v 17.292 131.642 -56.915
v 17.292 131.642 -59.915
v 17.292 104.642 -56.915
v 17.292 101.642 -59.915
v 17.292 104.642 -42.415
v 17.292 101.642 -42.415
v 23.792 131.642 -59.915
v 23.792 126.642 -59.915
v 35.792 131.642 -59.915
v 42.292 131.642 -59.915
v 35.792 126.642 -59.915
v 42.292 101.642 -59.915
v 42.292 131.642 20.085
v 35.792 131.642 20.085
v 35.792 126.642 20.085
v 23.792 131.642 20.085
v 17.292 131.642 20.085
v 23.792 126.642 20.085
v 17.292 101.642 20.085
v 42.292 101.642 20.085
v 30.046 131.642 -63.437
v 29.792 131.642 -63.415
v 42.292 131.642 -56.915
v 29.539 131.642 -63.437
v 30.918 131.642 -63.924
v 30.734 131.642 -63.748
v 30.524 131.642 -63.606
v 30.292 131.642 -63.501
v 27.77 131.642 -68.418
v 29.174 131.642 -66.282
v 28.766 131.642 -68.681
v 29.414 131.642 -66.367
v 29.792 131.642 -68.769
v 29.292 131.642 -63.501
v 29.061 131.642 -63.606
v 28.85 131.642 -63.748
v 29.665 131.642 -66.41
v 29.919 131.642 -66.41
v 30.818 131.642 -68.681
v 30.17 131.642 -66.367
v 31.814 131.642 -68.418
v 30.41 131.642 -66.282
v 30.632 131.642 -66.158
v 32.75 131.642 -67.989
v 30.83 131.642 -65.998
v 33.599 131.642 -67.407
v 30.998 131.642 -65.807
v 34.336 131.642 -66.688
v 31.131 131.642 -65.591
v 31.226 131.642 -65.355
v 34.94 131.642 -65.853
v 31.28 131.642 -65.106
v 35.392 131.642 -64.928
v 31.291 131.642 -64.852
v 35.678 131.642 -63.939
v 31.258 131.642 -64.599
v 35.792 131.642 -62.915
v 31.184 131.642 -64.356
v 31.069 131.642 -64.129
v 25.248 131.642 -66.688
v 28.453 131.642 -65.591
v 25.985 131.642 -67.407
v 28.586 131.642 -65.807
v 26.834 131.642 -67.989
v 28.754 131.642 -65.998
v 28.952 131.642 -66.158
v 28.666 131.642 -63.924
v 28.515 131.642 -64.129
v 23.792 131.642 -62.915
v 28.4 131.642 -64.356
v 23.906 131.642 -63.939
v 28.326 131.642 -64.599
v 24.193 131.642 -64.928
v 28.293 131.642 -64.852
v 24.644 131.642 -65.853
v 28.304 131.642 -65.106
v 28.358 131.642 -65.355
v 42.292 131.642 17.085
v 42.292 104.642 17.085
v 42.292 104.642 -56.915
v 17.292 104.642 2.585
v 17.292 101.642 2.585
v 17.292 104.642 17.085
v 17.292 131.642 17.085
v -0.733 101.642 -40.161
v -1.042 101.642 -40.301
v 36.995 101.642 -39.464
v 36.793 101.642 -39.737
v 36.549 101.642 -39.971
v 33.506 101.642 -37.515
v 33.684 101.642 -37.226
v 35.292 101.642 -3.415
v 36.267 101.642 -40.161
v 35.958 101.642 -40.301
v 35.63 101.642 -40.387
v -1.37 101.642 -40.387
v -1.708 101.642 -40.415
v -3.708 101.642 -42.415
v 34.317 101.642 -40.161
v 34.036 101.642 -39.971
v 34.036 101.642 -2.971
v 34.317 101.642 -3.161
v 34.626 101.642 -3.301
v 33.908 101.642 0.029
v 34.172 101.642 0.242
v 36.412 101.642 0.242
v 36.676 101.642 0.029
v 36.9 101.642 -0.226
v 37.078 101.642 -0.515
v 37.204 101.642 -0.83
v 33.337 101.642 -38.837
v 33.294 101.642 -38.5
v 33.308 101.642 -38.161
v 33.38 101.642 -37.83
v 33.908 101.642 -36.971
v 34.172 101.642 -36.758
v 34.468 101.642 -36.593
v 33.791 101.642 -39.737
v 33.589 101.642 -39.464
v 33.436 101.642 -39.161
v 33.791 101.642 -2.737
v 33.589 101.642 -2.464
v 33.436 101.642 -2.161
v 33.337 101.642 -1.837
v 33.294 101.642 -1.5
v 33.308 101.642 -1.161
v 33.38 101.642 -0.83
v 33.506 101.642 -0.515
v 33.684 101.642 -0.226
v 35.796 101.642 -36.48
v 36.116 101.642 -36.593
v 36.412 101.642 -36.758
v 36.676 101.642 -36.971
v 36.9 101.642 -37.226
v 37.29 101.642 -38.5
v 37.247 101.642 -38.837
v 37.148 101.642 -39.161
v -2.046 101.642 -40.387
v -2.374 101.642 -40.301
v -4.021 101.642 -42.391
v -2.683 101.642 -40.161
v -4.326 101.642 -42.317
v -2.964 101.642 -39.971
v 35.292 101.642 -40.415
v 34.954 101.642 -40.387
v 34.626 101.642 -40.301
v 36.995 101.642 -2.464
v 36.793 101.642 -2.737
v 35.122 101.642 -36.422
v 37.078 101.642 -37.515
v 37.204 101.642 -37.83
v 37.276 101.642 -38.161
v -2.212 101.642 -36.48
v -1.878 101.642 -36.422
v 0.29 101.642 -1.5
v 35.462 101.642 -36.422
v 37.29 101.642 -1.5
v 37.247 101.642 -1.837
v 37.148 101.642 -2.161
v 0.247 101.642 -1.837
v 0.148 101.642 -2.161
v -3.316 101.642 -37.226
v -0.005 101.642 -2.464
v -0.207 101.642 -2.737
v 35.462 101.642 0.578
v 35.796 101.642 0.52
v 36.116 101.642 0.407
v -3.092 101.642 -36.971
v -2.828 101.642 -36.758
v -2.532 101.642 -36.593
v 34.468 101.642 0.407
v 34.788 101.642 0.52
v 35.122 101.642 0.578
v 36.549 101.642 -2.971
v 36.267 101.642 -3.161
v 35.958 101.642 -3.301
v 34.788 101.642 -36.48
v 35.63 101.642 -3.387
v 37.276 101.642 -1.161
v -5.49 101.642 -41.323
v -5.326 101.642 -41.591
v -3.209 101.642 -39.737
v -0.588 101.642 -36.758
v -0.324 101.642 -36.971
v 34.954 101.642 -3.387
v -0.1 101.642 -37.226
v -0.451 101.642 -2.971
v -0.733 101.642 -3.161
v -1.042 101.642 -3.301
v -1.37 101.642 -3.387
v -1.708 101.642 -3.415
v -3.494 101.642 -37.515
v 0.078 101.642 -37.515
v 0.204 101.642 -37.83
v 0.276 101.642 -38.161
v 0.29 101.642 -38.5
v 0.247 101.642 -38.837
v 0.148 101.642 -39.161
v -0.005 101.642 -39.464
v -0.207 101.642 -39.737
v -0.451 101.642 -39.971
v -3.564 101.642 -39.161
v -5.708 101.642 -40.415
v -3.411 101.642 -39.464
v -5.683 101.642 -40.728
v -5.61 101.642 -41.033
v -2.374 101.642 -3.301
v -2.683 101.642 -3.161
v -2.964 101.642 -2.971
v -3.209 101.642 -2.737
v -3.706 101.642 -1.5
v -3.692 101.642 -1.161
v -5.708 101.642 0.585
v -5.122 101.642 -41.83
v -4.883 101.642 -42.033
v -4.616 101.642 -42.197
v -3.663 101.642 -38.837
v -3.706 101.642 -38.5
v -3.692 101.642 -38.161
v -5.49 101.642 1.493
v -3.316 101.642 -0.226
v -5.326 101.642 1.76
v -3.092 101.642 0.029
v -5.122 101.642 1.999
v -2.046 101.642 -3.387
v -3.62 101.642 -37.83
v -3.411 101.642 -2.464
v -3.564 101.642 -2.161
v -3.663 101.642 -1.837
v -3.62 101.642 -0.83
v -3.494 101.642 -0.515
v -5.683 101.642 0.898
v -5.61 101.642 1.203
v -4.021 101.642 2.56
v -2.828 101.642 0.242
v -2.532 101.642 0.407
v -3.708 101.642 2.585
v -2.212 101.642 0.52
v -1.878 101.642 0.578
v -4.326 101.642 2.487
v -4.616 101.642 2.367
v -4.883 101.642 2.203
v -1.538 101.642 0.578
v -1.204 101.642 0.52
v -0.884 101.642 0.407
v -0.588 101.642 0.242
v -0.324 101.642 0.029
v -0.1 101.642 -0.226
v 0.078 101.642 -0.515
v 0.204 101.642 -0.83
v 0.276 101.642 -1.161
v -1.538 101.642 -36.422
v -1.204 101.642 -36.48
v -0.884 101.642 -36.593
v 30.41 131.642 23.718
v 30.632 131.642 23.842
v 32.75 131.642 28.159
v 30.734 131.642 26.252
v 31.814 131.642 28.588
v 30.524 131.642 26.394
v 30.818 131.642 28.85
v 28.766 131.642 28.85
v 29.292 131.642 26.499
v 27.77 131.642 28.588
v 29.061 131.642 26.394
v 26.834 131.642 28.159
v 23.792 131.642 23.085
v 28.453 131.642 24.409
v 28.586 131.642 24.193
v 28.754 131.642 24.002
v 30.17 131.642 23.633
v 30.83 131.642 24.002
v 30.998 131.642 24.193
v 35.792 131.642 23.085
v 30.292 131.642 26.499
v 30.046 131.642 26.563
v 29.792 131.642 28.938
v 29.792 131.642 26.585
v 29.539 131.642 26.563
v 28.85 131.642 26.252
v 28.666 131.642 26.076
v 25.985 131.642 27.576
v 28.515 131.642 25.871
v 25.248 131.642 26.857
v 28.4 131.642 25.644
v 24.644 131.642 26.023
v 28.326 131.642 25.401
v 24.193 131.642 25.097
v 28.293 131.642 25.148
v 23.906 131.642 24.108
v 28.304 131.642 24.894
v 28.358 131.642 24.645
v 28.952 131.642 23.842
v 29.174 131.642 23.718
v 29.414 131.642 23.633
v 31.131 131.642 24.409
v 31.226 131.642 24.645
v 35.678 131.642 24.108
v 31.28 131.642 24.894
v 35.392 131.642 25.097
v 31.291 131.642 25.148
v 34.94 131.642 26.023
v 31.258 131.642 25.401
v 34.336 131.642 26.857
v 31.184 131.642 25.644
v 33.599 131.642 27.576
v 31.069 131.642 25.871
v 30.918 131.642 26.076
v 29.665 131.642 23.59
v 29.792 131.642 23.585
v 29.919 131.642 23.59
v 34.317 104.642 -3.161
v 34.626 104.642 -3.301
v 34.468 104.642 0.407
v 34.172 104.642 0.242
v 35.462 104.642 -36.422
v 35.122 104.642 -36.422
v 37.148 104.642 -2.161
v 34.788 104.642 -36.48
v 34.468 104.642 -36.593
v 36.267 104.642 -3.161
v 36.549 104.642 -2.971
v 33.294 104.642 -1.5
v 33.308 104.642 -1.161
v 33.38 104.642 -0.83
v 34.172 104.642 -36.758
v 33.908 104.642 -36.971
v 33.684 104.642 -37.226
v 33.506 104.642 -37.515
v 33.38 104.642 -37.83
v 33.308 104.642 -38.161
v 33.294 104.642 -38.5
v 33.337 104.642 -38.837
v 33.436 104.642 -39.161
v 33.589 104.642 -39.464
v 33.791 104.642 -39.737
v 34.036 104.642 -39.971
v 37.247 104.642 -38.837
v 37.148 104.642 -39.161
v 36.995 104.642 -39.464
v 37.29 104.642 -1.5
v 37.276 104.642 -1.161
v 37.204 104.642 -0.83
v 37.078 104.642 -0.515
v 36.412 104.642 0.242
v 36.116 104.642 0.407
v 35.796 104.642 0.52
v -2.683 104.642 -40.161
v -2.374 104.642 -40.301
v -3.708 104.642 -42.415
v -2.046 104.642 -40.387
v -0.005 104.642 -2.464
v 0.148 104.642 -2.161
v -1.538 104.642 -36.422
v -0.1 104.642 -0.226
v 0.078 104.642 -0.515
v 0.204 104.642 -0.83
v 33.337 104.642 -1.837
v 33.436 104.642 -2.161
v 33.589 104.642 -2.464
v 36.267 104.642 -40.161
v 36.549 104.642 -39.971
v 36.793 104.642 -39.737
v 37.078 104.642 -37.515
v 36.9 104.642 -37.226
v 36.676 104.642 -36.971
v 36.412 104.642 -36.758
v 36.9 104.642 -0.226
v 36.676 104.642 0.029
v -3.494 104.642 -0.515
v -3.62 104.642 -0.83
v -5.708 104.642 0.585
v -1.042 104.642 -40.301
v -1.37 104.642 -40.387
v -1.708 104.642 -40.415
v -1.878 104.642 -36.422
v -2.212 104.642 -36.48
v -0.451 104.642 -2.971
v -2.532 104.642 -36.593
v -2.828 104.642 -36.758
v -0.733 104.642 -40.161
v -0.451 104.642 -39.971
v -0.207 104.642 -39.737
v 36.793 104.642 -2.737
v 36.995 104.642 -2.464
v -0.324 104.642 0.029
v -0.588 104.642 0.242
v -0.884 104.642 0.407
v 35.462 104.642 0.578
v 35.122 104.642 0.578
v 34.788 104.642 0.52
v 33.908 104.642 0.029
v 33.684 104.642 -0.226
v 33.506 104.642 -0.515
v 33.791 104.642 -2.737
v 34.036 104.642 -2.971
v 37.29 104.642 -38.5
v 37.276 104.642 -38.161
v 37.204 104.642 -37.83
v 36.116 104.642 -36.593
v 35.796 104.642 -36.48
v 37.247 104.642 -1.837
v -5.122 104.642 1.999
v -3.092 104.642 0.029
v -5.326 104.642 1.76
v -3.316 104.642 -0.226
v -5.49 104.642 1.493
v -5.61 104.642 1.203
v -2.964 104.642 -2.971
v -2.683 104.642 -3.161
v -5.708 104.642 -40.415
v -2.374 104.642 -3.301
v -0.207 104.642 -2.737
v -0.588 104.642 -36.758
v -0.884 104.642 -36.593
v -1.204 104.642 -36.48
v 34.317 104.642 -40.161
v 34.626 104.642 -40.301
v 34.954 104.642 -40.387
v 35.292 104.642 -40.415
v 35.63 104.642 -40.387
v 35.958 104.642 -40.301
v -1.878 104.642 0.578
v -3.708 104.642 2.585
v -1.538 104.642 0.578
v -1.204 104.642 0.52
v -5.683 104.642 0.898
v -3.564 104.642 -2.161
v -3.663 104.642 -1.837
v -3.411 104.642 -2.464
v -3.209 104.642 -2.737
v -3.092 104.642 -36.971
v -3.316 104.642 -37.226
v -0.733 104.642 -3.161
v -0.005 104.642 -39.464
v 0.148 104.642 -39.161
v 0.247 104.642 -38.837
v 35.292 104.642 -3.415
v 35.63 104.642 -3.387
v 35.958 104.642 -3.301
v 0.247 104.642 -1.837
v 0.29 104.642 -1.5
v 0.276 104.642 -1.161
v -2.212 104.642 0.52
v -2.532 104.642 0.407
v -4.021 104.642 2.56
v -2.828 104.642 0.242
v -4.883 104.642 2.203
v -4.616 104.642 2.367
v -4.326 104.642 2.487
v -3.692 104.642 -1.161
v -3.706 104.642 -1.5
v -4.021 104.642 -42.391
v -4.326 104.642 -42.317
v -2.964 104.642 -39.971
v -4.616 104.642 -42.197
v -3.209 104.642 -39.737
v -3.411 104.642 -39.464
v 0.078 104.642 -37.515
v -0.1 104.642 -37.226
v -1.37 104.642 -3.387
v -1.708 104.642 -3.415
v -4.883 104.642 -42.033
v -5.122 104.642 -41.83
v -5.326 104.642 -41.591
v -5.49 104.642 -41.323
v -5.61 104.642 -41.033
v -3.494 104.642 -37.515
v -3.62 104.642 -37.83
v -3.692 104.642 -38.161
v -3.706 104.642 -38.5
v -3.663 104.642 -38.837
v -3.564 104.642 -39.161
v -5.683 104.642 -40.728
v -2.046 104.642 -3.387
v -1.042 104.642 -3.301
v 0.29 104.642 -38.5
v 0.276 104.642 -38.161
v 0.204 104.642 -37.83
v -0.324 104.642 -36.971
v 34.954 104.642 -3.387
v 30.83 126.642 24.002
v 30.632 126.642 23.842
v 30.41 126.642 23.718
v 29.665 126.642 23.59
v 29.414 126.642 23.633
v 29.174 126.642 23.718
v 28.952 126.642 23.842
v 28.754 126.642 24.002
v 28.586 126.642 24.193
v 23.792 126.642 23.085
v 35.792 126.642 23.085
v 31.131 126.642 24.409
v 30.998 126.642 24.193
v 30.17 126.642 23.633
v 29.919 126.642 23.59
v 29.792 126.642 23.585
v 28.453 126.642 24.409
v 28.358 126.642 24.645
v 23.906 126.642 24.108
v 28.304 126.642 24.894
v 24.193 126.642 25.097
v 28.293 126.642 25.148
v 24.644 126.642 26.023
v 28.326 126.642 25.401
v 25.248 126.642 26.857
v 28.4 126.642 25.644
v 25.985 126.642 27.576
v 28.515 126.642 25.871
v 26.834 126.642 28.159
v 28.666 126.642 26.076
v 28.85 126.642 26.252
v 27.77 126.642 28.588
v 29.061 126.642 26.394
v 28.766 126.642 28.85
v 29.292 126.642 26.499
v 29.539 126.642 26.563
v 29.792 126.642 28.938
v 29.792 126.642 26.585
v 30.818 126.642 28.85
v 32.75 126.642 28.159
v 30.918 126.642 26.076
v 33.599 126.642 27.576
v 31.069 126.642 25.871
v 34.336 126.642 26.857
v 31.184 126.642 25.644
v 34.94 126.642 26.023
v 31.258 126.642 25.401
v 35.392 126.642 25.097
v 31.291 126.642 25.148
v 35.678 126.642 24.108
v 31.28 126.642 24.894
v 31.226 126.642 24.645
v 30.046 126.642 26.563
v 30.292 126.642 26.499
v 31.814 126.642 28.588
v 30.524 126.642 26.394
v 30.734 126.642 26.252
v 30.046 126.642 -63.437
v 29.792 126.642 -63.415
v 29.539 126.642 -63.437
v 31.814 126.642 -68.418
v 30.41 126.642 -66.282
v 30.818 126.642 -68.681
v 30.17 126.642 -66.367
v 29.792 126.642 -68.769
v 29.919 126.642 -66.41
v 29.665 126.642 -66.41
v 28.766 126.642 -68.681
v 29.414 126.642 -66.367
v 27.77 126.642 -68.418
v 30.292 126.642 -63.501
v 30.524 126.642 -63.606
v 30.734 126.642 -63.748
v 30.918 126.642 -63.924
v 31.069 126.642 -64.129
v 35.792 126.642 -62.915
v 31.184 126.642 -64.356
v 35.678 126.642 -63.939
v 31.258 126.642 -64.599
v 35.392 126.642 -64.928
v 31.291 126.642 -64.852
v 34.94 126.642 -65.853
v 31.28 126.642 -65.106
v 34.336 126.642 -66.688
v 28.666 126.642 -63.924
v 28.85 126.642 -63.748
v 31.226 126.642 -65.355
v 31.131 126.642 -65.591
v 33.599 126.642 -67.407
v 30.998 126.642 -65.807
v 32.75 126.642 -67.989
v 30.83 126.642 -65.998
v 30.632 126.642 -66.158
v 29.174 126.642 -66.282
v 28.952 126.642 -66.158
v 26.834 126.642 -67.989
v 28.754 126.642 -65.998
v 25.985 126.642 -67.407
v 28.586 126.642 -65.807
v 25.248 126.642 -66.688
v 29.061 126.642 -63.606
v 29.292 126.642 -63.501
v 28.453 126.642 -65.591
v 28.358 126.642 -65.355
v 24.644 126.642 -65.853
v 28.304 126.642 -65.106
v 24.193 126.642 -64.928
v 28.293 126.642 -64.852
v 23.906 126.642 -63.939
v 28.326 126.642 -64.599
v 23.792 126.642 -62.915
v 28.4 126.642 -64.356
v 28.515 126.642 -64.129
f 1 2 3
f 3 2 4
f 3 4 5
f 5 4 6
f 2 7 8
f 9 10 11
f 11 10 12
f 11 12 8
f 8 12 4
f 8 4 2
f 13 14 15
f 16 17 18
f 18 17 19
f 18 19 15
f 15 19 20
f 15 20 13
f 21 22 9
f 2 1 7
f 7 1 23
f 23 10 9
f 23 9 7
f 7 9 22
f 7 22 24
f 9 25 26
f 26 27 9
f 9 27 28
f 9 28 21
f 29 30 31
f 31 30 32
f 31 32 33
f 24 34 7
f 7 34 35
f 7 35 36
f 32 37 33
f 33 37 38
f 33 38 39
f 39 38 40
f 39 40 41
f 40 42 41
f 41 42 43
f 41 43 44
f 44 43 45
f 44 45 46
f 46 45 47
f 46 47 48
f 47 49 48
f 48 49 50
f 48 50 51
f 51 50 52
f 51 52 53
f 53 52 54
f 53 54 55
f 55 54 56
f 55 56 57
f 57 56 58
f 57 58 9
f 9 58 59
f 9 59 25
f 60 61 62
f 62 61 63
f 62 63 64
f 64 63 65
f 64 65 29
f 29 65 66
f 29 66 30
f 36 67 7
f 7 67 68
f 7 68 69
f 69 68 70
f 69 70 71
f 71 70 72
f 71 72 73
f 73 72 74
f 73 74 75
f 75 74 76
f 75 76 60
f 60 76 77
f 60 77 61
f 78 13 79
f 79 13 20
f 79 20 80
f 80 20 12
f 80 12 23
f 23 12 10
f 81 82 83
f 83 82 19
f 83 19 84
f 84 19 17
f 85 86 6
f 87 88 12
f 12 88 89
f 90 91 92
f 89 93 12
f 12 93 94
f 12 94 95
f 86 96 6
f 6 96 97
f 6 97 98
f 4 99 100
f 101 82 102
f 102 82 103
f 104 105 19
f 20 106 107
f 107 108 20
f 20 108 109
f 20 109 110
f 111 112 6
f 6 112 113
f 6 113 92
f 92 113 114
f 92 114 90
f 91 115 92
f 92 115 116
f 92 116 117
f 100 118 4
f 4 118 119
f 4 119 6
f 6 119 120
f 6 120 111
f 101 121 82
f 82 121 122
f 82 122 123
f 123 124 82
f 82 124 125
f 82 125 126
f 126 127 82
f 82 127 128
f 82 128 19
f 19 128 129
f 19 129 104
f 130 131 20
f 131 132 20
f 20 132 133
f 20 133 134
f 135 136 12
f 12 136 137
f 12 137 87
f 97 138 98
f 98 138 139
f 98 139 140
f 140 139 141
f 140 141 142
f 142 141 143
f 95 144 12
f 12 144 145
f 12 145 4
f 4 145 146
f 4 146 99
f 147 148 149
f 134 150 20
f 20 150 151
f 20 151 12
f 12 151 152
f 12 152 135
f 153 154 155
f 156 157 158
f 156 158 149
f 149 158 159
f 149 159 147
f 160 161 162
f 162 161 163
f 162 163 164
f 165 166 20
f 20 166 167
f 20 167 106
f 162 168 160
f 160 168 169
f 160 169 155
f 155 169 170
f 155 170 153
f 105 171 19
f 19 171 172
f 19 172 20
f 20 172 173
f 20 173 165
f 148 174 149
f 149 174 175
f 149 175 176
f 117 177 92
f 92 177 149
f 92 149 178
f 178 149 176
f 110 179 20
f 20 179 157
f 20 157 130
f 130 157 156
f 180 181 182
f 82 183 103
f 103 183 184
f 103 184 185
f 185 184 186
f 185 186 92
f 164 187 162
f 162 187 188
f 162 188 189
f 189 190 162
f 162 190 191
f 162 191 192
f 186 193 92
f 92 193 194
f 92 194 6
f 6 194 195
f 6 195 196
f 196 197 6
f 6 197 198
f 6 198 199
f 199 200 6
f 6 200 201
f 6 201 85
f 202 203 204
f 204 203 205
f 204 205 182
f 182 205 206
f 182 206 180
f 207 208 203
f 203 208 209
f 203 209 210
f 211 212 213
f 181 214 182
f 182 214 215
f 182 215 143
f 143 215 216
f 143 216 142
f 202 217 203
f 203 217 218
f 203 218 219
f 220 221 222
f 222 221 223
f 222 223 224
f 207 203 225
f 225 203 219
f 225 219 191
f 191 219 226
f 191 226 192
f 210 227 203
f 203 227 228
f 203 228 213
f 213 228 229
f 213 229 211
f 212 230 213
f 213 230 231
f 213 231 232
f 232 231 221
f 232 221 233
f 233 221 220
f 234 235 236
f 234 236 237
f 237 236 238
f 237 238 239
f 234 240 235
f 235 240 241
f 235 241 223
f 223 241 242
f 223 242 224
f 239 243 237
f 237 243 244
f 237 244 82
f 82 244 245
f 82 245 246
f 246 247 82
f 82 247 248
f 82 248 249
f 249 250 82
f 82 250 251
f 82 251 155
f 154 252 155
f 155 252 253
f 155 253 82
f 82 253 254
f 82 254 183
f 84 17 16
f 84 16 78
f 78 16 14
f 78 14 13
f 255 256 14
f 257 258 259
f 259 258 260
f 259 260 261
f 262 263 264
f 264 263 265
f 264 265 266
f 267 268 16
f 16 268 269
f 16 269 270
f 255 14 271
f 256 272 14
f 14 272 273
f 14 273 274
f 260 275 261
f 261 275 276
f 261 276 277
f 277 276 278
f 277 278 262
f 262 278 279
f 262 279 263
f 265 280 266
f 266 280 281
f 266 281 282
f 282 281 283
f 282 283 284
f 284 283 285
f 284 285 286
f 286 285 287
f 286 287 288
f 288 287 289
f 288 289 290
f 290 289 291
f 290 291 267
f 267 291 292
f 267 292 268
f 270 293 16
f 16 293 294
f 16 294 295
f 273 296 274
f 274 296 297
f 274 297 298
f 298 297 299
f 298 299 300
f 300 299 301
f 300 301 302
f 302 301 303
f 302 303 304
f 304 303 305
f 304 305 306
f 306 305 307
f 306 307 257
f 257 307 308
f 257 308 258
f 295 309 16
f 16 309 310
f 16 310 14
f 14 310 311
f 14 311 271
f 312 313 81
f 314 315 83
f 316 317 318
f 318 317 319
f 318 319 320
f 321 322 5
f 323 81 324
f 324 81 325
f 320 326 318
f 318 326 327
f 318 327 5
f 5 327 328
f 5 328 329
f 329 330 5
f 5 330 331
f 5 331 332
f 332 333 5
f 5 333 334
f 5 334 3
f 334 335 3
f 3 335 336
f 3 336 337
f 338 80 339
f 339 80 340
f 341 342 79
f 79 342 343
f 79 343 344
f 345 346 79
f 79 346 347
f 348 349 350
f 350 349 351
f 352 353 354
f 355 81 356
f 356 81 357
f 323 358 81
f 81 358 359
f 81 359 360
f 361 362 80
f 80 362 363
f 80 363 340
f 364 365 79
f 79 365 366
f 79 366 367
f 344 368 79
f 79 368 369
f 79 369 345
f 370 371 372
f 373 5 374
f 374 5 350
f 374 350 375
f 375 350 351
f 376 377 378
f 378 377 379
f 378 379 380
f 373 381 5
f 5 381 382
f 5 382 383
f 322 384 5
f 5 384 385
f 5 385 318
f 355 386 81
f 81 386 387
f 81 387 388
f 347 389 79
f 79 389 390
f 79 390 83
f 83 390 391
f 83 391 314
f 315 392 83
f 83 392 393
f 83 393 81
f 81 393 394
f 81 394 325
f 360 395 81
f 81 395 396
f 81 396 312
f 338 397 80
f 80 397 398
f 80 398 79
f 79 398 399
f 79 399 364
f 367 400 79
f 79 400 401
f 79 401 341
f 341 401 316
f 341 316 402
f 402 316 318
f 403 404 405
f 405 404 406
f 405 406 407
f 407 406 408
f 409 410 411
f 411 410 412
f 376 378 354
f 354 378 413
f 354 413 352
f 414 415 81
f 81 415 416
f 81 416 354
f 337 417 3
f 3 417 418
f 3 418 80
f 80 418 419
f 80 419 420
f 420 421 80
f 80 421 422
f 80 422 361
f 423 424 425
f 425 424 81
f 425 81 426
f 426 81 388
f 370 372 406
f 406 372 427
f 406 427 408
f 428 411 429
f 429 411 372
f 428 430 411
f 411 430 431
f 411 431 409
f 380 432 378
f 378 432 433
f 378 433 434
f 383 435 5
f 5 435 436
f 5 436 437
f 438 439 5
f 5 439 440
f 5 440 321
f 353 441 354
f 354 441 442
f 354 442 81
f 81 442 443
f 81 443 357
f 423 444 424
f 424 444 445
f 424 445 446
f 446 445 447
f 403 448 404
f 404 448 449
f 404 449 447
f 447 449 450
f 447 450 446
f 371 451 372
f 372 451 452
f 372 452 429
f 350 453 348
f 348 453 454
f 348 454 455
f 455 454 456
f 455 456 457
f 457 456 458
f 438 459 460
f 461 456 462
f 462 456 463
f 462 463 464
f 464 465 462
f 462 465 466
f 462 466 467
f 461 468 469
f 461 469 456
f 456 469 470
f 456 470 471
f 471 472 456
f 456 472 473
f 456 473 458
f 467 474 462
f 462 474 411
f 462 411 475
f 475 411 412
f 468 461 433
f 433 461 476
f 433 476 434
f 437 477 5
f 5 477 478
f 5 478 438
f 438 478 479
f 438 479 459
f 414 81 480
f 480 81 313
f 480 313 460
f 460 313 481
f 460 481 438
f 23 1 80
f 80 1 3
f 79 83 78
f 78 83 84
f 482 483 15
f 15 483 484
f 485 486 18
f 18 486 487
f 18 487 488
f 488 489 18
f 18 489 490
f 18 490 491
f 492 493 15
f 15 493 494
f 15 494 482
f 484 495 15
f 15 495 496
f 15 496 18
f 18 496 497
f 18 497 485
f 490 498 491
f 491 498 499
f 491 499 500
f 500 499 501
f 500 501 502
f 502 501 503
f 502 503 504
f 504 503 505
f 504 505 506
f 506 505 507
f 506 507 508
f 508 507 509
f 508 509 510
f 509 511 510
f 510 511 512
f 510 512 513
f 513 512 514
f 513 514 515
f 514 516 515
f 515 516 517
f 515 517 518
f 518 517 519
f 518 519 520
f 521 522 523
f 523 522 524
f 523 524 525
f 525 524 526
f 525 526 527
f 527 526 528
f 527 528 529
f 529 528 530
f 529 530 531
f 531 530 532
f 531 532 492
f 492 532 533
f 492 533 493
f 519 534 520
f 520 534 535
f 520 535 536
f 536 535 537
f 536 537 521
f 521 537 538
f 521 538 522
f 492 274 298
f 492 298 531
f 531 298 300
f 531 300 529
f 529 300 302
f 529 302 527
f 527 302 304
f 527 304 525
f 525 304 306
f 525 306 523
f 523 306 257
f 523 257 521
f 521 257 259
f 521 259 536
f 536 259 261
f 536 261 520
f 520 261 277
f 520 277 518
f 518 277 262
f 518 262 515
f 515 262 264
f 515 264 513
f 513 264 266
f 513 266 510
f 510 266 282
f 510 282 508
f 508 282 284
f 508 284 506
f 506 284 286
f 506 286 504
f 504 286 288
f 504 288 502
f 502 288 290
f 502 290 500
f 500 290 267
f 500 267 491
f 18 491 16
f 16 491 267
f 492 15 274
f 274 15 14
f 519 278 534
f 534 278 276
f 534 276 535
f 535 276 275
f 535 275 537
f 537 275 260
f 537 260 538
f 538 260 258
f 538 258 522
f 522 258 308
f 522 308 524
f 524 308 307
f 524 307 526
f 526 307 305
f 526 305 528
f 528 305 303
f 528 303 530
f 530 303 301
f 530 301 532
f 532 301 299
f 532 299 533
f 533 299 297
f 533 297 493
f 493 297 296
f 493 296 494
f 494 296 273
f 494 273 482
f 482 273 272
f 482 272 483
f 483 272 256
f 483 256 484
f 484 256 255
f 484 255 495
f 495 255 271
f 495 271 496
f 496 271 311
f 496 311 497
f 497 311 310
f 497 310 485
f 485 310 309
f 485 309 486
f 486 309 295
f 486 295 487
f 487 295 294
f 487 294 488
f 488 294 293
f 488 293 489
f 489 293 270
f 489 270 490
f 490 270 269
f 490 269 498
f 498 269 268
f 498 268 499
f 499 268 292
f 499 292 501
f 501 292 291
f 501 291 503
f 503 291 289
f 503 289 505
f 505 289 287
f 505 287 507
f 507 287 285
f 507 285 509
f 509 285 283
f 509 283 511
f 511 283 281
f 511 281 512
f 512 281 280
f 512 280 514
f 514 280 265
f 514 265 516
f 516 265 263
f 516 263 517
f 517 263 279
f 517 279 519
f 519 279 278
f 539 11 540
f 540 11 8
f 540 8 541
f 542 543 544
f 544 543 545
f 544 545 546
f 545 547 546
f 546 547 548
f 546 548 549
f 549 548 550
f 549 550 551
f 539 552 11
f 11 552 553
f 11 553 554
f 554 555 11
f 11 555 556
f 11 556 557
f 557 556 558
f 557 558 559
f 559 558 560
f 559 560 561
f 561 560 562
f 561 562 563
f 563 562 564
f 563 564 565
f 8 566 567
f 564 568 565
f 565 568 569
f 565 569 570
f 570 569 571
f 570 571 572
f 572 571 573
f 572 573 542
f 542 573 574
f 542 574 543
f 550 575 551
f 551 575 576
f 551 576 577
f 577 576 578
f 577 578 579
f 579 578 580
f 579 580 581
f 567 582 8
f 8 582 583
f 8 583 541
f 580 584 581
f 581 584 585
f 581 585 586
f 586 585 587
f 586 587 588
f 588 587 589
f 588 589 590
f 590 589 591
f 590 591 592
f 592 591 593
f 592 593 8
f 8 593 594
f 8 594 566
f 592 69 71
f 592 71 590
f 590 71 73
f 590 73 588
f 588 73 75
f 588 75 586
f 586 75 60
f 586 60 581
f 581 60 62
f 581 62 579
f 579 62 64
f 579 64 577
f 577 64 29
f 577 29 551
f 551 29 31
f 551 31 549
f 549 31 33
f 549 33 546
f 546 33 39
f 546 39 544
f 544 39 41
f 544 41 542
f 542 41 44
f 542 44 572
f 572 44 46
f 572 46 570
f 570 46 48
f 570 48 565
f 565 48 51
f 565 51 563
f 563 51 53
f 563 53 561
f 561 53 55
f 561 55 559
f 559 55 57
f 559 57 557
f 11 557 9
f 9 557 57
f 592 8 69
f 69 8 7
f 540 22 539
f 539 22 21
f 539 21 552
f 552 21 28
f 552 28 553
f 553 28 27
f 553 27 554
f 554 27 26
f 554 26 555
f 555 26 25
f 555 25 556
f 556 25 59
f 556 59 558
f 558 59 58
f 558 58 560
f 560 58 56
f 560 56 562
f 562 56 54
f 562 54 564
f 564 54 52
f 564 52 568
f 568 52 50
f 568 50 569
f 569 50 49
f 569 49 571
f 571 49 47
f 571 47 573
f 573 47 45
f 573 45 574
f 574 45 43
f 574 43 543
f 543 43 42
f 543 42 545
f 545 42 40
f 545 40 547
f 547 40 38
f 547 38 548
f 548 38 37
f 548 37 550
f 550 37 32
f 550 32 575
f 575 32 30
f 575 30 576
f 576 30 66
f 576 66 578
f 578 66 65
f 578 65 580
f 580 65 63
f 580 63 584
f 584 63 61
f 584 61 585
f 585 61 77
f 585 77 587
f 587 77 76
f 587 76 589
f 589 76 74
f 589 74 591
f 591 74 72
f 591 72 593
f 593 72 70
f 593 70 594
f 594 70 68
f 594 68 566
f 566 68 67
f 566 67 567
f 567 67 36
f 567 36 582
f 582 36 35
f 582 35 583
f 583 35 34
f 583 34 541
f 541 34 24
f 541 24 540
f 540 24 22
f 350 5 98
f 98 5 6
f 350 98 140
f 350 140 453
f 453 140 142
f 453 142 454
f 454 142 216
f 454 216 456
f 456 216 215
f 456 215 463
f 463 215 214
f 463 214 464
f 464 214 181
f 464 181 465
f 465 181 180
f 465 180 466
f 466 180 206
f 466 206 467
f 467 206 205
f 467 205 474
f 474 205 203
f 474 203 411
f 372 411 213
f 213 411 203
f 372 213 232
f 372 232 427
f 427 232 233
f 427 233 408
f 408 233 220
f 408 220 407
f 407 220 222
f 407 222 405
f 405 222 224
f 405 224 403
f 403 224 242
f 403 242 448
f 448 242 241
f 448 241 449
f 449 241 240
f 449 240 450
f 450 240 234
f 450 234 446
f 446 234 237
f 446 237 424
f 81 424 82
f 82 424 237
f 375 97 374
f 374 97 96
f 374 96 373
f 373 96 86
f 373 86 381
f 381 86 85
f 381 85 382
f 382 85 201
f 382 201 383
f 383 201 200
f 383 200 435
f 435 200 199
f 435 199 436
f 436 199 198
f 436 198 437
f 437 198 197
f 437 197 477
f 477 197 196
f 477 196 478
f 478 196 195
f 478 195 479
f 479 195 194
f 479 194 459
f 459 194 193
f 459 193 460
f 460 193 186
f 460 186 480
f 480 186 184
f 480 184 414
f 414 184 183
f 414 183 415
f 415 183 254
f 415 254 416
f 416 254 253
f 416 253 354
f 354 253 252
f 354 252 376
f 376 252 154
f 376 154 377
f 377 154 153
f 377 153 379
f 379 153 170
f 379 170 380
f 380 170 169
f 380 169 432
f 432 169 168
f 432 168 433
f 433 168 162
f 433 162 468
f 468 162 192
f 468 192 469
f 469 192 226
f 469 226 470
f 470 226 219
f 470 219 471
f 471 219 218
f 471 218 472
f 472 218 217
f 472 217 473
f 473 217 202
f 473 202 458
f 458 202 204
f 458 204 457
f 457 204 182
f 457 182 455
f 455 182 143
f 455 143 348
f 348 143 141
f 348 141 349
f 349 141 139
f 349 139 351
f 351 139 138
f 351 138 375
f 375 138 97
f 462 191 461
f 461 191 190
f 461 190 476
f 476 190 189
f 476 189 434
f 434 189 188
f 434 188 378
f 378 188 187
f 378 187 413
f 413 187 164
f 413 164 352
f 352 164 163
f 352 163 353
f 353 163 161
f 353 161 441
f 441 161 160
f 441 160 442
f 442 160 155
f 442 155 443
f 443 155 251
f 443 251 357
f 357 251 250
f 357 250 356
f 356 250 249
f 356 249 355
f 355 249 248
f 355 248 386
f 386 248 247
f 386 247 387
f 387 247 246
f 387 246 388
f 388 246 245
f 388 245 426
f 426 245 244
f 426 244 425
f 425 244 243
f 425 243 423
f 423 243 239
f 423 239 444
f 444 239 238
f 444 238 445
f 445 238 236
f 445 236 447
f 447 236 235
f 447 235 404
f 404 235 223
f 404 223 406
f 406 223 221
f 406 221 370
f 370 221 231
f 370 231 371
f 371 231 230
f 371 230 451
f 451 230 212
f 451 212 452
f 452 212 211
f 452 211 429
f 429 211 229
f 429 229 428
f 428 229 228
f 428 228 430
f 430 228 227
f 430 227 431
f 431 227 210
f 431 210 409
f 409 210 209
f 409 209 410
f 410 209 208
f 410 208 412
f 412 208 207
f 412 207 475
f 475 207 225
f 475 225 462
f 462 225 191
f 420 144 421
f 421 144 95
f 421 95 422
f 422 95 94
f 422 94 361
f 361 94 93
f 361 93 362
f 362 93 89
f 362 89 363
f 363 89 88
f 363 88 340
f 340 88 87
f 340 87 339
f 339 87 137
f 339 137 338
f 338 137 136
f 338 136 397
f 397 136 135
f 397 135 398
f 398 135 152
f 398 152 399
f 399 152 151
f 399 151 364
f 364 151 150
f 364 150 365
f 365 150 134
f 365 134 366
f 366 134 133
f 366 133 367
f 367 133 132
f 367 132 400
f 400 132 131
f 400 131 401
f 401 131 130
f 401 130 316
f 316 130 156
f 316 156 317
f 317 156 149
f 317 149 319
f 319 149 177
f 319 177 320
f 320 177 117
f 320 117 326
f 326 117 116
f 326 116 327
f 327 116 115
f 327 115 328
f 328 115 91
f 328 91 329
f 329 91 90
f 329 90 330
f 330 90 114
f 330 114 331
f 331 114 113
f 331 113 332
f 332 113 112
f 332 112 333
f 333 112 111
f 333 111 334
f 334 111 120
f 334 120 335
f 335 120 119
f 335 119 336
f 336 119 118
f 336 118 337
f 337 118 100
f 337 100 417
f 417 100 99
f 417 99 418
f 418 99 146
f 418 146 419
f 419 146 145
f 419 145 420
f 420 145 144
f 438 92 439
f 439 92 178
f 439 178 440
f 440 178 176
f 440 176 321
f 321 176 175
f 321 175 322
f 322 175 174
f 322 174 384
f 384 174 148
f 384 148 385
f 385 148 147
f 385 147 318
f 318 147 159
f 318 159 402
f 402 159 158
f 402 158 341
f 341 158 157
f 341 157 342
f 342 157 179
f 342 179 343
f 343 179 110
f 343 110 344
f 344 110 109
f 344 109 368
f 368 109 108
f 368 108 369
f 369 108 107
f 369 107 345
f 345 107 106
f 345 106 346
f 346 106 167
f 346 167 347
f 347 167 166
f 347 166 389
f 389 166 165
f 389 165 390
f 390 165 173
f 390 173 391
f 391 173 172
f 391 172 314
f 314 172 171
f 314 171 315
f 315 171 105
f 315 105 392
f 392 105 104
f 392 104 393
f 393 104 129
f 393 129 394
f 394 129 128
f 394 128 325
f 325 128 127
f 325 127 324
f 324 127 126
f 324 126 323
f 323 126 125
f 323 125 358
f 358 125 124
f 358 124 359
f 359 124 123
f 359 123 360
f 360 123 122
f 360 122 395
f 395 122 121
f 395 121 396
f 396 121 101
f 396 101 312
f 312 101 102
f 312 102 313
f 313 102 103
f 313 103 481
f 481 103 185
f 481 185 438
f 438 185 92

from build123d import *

# Parameters (mm, degrees)
EXTRUDE_1_OUTLINE_W = 25
EXTRUDE_1_OUTLINE_H = 80
EXTRUDE_1_DEPTH     = 30
SKETCH_2_W          = 74
SKETCH_2_H          = 27
CUT_EXTRUDE_1_DEPTH = 33
SKETCH_3_R          = 1.5
EXTRUDE_2_DEPTH     = 5
SKETCH_4_R          = 2
EXTRUDE_3_DEPTH     = 3
SKETCH_5_R          = 2
CUT_EXTRUDE_2_DEPTH = 3


# Read off the part's stored shape, not the designer's step: 填料-伸長1
with BuildPart() as part:
    # 填料-伸長1 outline → 填料-伸長1 (new body)
    with BuildSketch(Plane.XZ.offset(-131.641882403)):
        with Locations((29.792094012, -19.915289206)):
            Rectangle(EXTRUDE_1_OUTLINE_W, EXTRUDE_1_OUTLINE_H)
    extrude(amount=EXTRUDE_1_DEPTH)

    # 草圖2 → 除料-伸長1 (cut)
    with BuildSketch(Plane(origin=(42.292094012, 0, 0), x_dir=(0, 0, -1), z_dir=(1, 0, 0))):
        with Locations((19.915289206, 118.141882403)):
            Rectangle(SKETCH_2_W, SKETCH_2_H)
    extrude(amount=-CUT_EXTRUDE_1_DEPTH, mode=Mode.SUBTRACT)

    # 草圖3 → 填料-伸長2 (add)
    # profile 1 of 2: a face of its own
    with BuildSketch(Plane.XZ.offset(-131.641882403)):
        with BuildLine():
            Line((23.792094012, 20.084710794), (35.792094012, 20.084710794))
            Line((35.792094012, 20.084710794), (35.792094012, 23.084710794))
            ThreePointArc((35.792094012, 23.084710794), (29.792094012, 28.938496633), (23.792094012, 23.084710794))
            Line((23.792094012, 23.084710794), (23.792094012, 20.084710794))
        make_face()
        with Locations(Location((29.792094012, 25.084710794, 0), (0, 0, 270))):
            Circle(SKETCH_3_R, mode=Mode.SUBTRACT)
    # profile 2 of 2: a face of its own
    with BuildSketch(Plane.XZ.offset(-131.641882403)):
        with BuildLine():
            Line((23.792094012, -62.915289206), (23.792094012, -59.915289206))
            Line((23.792094012, -59.915289206), (35.792094012, -59.915289206))
            Line((35.792094012, -59.915289206), (35.792094012, -62.915289206))
            ThreePointArc((35.792094012, -62.915289206), (29.792094012, -68.769075045), (23.792094012, -62.915289206))
        make_face()
        with Locations(Location((29.792094012, -64.915289206, 0), (0, 0, 90))):
            Circle(SKETCH_3_R, mode=Mode.SUBTRACT)
    extrude(amount=EXTRUDE_2_DEPTH)

    # 草圖4 → 填料-伸長3 (add)
    with BuildSketch(Plane.XZ.offset(-101.641882403)):
        with BuildLine():
            Line((17.292094012, 2.584710794), (-3.707905988, 2.584710794))
            ThreePointArc((-3.707905988, 2.584710794), (-5.12211955, 1.998924356), (-5.707905988, 0.584710794))
            Line((-5.707905988, 0.584710794), (-5.707905988, -40.415289206))
            ThreePointArc((-5.707905988, -40.415289206), (-5.12211955, -41.829502769), (-3.707905988, -42.415289206))
            Line((-3.707905988, -42.415289206), (17.292094012, -42.415289206))
            Line((17.292094012, -42.415289206), (17.292094012, 2.584710794))
        make_face()
        with Locations(Location((-1.707905988, -38.415289206, 0), (0, 0, 270))):
            Circle(SKETCH_4_R, mode=Mode.SUBTRACT)
        with Locations(Location((-1.707905988, -1.415289206, 0), (0, 0, 270))):
            Circle(SKETCH_4_R, mode=Mode.SUBTRACT)
    extrude(amount=-EXTRUDE_3_DEPTH)

    # 草圖5 → 除料-伸長2 (cut)
    with BuildSketch(Plane.XZ.offset(-101.641882403)):
        with Locations(Location((35.292094012, -1.415289206, 0), (0, 0, 270))):
            Circle(SKETCH_5_R)
        with Locations(Location((35.292094012, -38.415289206, 0), (0, 0, 270))):
            Circle(SKETCH_5_R)
    extrude(amount=-CUT_EXTRUDE_2_DEPTH, mode=Mode.SUBTRACT)


solid = part.part
